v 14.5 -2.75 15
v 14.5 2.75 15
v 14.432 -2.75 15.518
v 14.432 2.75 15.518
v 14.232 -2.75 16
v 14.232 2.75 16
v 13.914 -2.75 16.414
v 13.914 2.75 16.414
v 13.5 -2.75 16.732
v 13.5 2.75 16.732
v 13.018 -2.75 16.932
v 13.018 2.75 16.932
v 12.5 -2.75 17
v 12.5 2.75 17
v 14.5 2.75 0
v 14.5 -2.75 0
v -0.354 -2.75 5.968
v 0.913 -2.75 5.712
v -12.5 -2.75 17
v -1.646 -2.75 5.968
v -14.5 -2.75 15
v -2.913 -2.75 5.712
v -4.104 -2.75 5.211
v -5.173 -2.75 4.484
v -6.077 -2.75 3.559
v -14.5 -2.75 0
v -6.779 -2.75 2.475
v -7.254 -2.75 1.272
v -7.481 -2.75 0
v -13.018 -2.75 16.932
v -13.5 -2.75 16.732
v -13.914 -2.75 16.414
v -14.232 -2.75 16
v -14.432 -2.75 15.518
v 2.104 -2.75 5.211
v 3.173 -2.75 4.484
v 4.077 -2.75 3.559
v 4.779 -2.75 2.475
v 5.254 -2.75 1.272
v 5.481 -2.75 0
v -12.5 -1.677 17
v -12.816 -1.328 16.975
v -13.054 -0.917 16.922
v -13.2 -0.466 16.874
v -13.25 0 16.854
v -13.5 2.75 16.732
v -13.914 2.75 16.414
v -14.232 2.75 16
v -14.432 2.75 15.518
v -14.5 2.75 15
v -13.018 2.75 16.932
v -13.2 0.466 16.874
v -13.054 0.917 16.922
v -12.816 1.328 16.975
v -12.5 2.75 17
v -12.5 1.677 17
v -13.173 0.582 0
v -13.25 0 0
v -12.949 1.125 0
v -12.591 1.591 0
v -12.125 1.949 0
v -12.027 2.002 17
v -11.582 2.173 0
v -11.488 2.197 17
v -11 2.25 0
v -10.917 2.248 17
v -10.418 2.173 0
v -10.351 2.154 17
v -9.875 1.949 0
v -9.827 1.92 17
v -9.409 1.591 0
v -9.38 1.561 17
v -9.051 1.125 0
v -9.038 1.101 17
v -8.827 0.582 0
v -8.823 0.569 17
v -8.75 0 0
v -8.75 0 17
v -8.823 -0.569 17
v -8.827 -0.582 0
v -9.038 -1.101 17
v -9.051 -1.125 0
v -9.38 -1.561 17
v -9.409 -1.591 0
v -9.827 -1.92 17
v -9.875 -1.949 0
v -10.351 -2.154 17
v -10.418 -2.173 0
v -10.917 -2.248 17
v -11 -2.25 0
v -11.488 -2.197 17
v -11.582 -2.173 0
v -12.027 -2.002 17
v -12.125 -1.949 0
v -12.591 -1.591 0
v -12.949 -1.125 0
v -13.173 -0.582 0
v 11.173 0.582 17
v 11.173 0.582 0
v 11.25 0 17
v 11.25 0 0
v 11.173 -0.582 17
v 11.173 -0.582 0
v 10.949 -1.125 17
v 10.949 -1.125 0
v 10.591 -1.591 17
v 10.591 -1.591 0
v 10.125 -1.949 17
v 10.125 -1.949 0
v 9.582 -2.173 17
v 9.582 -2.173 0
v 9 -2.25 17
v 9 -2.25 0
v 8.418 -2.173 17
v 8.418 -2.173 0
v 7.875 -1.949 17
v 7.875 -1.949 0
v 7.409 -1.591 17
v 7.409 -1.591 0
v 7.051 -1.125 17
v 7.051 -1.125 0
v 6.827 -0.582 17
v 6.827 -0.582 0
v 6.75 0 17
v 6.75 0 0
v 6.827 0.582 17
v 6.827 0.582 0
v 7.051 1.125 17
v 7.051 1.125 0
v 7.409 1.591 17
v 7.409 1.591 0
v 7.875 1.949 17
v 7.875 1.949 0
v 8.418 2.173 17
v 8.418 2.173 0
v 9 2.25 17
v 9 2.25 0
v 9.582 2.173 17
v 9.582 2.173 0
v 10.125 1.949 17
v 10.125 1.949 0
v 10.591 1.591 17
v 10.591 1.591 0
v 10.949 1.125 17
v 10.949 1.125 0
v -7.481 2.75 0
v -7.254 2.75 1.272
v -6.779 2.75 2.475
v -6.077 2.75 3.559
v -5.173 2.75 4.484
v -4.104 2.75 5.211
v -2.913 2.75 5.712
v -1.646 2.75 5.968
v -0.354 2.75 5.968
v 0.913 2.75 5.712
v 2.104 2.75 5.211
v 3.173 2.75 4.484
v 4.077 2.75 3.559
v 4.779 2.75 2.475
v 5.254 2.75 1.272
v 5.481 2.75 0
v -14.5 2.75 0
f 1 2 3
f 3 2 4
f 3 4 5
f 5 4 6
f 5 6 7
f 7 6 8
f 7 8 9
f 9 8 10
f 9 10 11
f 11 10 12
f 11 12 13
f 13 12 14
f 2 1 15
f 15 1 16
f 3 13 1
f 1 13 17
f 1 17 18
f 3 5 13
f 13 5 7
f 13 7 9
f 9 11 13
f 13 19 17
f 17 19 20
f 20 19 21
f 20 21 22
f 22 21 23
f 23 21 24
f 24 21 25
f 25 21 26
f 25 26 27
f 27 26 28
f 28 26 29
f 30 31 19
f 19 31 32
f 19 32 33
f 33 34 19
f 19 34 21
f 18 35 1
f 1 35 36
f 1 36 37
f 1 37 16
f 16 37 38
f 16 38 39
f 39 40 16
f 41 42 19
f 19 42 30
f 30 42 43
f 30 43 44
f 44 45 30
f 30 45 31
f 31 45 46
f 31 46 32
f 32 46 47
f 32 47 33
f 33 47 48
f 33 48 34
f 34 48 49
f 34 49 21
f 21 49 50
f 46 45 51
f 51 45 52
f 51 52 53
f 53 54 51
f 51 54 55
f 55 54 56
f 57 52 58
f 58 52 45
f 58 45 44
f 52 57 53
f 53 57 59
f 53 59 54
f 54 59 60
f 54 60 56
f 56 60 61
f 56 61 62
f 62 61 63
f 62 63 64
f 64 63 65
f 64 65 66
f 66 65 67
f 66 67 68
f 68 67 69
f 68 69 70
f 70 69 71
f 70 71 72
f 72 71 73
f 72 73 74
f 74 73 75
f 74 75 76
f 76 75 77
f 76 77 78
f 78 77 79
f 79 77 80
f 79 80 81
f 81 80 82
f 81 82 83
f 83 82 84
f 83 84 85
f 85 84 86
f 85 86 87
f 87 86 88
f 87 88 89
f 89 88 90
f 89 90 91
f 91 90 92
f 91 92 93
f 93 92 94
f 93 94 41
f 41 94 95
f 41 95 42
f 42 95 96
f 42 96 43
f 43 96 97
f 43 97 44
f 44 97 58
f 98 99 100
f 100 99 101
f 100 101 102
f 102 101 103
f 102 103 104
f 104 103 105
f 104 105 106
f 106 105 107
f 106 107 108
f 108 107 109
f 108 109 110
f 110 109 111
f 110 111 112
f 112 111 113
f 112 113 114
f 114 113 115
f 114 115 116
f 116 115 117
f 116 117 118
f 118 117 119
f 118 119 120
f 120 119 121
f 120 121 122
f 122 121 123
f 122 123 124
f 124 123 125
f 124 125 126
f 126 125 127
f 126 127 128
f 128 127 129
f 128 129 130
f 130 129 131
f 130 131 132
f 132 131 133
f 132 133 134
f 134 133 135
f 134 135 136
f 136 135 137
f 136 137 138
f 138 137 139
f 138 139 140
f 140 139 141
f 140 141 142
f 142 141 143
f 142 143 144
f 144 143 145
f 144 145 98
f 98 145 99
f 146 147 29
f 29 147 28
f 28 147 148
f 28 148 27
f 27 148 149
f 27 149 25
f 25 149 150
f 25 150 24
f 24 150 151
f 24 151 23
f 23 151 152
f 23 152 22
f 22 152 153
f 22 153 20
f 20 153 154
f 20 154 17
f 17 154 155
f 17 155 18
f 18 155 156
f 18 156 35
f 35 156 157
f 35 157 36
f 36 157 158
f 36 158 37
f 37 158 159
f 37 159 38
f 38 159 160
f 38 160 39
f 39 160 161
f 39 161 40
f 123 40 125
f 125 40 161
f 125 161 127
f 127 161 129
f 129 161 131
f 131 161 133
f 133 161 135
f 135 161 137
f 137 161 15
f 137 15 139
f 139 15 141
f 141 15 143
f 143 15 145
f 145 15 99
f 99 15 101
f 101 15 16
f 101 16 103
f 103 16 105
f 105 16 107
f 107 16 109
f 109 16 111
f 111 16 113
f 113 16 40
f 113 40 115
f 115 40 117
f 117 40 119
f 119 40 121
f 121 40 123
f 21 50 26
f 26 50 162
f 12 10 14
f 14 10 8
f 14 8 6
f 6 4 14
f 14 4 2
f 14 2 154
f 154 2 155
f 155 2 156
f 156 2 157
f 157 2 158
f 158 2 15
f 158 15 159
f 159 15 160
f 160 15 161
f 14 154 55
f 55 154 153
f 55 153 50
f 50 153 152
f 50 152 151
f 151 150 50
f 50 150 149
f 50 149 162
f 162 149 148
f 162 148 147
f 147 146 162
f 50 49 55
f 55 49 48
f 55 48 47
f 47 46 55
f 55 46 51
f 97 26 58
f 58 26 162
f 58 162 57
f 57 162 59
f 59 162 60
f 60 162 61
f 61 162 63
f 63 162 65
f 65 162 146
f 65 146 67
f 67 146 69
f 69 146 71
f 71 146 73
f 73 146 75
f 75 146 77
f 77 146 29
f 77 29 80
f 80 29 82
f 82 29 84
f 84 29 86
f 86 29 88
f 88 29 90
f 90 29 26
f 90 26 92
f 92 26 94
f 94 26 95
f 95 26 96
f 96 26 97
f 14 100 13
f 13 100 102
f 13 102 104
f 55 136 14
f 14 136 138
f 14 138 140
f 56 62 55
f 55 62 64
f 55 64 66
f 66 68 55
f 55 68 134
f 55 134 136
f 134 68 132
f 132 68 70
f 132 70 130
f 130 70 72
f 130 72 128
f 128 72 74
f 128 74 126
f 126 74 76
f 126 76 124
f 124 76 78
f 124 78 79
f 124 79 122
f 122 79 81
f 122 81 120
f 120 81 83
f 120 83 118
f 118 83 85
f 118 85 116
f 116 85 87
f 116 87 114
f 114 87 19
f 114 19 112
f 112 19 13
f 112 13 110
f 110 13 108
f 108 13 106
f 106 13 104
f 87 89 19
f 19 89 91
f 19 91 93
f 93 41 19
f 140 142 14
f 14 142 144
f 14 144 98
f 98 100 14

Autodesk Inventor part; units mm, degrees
ref_plane "YZ Plane" through (0, 0, 0) normal (1, 0, 0) x (0, 1, 0)
ref_plane "XZ Plane" through (0, 0, 0) normal (0, 1, 0) x (-1, 0, 0)
ref_plane "XY Plane" through (0, 0, 0) normal (0, 0, 1) x (1, 0, 0)
sketch "Sketch1" plane through (0, 0, 0) normal (0, 0, 1) x (1, 0, 0)
  line L0 (-14.5, 2.75) -> (14.5, 2.75)
  line L1 (14.5, 2.75) -> (14.5, -2.75)
  line L2 (14.5, -2.75) -> (-14.5, -2.75)
  line L3 (-14.5, -2.75) -> (-14.5, 2.75)
  line L4 (-14.5, 2.75) -> (14.5, -2.75) construction
  line L5 (14.5, 2.75) -> (-14.5, -2.75) construction
  point P0 (0, 0)
  dimension "d0" = 29
  dimension "d1" = 5.5
extrude "Extrusion1" add sketch "Sketch1" along normal blind 17
sketch "Sketch2" plane through (-14.5, 2.75, 0) normal (0, 1, 0) x (1, 0, 0)
  circle A0 centre (13.5, 0.5) radius 6.5
  line L0 (0, 0) -> (0, -17) projected
  line L1 (29, -17) -> (0, -17) projected
  point P0 (19.9809, 0.0015)
  point P1 (7.0191, 0.0015)
  dimension "d5" = 13
  dimension "d6" = 13.5
  dimension "d10" = 17.5
extrude "Extrusion2" cut sketch "Sketch2" against normal through all
sketch "Sketch3" plane through (0, 0, 0) normal (0, 0, -1) x (-1, 0, 0)
  circle A0 centre (11, 0) radius 2.25
  line L0 (7.4807, -2.75) -> (14.5, -2.75) projected
  line L1 (14.5, -2.75) -> (14.5, 2.75) projected
  circle A1 centre (-9, 0) radius 2.25
  line L2 (-14.5, -2.75) -> (-5.4807, -2.75) projected
  point P0 (0, 0)
  dimension "d11" = 4.5
  dimension "d12" = 2.75
  dimension "d13" = 3.5
  dimension "d14" = 4.5
  dimension "d15" = 20
  dimension "d16" = 2.75
hole "Hole1" at (9, 0, 0) at (-11, 0, 0) direction (0, 0, 1) diameter 4.5 end through all
fillet "Fillet1" radius 2 2 edges at (-14.5, 0, 17) (14.5, 0, 17)
properties part number "CarroXY - HotendFrente"
